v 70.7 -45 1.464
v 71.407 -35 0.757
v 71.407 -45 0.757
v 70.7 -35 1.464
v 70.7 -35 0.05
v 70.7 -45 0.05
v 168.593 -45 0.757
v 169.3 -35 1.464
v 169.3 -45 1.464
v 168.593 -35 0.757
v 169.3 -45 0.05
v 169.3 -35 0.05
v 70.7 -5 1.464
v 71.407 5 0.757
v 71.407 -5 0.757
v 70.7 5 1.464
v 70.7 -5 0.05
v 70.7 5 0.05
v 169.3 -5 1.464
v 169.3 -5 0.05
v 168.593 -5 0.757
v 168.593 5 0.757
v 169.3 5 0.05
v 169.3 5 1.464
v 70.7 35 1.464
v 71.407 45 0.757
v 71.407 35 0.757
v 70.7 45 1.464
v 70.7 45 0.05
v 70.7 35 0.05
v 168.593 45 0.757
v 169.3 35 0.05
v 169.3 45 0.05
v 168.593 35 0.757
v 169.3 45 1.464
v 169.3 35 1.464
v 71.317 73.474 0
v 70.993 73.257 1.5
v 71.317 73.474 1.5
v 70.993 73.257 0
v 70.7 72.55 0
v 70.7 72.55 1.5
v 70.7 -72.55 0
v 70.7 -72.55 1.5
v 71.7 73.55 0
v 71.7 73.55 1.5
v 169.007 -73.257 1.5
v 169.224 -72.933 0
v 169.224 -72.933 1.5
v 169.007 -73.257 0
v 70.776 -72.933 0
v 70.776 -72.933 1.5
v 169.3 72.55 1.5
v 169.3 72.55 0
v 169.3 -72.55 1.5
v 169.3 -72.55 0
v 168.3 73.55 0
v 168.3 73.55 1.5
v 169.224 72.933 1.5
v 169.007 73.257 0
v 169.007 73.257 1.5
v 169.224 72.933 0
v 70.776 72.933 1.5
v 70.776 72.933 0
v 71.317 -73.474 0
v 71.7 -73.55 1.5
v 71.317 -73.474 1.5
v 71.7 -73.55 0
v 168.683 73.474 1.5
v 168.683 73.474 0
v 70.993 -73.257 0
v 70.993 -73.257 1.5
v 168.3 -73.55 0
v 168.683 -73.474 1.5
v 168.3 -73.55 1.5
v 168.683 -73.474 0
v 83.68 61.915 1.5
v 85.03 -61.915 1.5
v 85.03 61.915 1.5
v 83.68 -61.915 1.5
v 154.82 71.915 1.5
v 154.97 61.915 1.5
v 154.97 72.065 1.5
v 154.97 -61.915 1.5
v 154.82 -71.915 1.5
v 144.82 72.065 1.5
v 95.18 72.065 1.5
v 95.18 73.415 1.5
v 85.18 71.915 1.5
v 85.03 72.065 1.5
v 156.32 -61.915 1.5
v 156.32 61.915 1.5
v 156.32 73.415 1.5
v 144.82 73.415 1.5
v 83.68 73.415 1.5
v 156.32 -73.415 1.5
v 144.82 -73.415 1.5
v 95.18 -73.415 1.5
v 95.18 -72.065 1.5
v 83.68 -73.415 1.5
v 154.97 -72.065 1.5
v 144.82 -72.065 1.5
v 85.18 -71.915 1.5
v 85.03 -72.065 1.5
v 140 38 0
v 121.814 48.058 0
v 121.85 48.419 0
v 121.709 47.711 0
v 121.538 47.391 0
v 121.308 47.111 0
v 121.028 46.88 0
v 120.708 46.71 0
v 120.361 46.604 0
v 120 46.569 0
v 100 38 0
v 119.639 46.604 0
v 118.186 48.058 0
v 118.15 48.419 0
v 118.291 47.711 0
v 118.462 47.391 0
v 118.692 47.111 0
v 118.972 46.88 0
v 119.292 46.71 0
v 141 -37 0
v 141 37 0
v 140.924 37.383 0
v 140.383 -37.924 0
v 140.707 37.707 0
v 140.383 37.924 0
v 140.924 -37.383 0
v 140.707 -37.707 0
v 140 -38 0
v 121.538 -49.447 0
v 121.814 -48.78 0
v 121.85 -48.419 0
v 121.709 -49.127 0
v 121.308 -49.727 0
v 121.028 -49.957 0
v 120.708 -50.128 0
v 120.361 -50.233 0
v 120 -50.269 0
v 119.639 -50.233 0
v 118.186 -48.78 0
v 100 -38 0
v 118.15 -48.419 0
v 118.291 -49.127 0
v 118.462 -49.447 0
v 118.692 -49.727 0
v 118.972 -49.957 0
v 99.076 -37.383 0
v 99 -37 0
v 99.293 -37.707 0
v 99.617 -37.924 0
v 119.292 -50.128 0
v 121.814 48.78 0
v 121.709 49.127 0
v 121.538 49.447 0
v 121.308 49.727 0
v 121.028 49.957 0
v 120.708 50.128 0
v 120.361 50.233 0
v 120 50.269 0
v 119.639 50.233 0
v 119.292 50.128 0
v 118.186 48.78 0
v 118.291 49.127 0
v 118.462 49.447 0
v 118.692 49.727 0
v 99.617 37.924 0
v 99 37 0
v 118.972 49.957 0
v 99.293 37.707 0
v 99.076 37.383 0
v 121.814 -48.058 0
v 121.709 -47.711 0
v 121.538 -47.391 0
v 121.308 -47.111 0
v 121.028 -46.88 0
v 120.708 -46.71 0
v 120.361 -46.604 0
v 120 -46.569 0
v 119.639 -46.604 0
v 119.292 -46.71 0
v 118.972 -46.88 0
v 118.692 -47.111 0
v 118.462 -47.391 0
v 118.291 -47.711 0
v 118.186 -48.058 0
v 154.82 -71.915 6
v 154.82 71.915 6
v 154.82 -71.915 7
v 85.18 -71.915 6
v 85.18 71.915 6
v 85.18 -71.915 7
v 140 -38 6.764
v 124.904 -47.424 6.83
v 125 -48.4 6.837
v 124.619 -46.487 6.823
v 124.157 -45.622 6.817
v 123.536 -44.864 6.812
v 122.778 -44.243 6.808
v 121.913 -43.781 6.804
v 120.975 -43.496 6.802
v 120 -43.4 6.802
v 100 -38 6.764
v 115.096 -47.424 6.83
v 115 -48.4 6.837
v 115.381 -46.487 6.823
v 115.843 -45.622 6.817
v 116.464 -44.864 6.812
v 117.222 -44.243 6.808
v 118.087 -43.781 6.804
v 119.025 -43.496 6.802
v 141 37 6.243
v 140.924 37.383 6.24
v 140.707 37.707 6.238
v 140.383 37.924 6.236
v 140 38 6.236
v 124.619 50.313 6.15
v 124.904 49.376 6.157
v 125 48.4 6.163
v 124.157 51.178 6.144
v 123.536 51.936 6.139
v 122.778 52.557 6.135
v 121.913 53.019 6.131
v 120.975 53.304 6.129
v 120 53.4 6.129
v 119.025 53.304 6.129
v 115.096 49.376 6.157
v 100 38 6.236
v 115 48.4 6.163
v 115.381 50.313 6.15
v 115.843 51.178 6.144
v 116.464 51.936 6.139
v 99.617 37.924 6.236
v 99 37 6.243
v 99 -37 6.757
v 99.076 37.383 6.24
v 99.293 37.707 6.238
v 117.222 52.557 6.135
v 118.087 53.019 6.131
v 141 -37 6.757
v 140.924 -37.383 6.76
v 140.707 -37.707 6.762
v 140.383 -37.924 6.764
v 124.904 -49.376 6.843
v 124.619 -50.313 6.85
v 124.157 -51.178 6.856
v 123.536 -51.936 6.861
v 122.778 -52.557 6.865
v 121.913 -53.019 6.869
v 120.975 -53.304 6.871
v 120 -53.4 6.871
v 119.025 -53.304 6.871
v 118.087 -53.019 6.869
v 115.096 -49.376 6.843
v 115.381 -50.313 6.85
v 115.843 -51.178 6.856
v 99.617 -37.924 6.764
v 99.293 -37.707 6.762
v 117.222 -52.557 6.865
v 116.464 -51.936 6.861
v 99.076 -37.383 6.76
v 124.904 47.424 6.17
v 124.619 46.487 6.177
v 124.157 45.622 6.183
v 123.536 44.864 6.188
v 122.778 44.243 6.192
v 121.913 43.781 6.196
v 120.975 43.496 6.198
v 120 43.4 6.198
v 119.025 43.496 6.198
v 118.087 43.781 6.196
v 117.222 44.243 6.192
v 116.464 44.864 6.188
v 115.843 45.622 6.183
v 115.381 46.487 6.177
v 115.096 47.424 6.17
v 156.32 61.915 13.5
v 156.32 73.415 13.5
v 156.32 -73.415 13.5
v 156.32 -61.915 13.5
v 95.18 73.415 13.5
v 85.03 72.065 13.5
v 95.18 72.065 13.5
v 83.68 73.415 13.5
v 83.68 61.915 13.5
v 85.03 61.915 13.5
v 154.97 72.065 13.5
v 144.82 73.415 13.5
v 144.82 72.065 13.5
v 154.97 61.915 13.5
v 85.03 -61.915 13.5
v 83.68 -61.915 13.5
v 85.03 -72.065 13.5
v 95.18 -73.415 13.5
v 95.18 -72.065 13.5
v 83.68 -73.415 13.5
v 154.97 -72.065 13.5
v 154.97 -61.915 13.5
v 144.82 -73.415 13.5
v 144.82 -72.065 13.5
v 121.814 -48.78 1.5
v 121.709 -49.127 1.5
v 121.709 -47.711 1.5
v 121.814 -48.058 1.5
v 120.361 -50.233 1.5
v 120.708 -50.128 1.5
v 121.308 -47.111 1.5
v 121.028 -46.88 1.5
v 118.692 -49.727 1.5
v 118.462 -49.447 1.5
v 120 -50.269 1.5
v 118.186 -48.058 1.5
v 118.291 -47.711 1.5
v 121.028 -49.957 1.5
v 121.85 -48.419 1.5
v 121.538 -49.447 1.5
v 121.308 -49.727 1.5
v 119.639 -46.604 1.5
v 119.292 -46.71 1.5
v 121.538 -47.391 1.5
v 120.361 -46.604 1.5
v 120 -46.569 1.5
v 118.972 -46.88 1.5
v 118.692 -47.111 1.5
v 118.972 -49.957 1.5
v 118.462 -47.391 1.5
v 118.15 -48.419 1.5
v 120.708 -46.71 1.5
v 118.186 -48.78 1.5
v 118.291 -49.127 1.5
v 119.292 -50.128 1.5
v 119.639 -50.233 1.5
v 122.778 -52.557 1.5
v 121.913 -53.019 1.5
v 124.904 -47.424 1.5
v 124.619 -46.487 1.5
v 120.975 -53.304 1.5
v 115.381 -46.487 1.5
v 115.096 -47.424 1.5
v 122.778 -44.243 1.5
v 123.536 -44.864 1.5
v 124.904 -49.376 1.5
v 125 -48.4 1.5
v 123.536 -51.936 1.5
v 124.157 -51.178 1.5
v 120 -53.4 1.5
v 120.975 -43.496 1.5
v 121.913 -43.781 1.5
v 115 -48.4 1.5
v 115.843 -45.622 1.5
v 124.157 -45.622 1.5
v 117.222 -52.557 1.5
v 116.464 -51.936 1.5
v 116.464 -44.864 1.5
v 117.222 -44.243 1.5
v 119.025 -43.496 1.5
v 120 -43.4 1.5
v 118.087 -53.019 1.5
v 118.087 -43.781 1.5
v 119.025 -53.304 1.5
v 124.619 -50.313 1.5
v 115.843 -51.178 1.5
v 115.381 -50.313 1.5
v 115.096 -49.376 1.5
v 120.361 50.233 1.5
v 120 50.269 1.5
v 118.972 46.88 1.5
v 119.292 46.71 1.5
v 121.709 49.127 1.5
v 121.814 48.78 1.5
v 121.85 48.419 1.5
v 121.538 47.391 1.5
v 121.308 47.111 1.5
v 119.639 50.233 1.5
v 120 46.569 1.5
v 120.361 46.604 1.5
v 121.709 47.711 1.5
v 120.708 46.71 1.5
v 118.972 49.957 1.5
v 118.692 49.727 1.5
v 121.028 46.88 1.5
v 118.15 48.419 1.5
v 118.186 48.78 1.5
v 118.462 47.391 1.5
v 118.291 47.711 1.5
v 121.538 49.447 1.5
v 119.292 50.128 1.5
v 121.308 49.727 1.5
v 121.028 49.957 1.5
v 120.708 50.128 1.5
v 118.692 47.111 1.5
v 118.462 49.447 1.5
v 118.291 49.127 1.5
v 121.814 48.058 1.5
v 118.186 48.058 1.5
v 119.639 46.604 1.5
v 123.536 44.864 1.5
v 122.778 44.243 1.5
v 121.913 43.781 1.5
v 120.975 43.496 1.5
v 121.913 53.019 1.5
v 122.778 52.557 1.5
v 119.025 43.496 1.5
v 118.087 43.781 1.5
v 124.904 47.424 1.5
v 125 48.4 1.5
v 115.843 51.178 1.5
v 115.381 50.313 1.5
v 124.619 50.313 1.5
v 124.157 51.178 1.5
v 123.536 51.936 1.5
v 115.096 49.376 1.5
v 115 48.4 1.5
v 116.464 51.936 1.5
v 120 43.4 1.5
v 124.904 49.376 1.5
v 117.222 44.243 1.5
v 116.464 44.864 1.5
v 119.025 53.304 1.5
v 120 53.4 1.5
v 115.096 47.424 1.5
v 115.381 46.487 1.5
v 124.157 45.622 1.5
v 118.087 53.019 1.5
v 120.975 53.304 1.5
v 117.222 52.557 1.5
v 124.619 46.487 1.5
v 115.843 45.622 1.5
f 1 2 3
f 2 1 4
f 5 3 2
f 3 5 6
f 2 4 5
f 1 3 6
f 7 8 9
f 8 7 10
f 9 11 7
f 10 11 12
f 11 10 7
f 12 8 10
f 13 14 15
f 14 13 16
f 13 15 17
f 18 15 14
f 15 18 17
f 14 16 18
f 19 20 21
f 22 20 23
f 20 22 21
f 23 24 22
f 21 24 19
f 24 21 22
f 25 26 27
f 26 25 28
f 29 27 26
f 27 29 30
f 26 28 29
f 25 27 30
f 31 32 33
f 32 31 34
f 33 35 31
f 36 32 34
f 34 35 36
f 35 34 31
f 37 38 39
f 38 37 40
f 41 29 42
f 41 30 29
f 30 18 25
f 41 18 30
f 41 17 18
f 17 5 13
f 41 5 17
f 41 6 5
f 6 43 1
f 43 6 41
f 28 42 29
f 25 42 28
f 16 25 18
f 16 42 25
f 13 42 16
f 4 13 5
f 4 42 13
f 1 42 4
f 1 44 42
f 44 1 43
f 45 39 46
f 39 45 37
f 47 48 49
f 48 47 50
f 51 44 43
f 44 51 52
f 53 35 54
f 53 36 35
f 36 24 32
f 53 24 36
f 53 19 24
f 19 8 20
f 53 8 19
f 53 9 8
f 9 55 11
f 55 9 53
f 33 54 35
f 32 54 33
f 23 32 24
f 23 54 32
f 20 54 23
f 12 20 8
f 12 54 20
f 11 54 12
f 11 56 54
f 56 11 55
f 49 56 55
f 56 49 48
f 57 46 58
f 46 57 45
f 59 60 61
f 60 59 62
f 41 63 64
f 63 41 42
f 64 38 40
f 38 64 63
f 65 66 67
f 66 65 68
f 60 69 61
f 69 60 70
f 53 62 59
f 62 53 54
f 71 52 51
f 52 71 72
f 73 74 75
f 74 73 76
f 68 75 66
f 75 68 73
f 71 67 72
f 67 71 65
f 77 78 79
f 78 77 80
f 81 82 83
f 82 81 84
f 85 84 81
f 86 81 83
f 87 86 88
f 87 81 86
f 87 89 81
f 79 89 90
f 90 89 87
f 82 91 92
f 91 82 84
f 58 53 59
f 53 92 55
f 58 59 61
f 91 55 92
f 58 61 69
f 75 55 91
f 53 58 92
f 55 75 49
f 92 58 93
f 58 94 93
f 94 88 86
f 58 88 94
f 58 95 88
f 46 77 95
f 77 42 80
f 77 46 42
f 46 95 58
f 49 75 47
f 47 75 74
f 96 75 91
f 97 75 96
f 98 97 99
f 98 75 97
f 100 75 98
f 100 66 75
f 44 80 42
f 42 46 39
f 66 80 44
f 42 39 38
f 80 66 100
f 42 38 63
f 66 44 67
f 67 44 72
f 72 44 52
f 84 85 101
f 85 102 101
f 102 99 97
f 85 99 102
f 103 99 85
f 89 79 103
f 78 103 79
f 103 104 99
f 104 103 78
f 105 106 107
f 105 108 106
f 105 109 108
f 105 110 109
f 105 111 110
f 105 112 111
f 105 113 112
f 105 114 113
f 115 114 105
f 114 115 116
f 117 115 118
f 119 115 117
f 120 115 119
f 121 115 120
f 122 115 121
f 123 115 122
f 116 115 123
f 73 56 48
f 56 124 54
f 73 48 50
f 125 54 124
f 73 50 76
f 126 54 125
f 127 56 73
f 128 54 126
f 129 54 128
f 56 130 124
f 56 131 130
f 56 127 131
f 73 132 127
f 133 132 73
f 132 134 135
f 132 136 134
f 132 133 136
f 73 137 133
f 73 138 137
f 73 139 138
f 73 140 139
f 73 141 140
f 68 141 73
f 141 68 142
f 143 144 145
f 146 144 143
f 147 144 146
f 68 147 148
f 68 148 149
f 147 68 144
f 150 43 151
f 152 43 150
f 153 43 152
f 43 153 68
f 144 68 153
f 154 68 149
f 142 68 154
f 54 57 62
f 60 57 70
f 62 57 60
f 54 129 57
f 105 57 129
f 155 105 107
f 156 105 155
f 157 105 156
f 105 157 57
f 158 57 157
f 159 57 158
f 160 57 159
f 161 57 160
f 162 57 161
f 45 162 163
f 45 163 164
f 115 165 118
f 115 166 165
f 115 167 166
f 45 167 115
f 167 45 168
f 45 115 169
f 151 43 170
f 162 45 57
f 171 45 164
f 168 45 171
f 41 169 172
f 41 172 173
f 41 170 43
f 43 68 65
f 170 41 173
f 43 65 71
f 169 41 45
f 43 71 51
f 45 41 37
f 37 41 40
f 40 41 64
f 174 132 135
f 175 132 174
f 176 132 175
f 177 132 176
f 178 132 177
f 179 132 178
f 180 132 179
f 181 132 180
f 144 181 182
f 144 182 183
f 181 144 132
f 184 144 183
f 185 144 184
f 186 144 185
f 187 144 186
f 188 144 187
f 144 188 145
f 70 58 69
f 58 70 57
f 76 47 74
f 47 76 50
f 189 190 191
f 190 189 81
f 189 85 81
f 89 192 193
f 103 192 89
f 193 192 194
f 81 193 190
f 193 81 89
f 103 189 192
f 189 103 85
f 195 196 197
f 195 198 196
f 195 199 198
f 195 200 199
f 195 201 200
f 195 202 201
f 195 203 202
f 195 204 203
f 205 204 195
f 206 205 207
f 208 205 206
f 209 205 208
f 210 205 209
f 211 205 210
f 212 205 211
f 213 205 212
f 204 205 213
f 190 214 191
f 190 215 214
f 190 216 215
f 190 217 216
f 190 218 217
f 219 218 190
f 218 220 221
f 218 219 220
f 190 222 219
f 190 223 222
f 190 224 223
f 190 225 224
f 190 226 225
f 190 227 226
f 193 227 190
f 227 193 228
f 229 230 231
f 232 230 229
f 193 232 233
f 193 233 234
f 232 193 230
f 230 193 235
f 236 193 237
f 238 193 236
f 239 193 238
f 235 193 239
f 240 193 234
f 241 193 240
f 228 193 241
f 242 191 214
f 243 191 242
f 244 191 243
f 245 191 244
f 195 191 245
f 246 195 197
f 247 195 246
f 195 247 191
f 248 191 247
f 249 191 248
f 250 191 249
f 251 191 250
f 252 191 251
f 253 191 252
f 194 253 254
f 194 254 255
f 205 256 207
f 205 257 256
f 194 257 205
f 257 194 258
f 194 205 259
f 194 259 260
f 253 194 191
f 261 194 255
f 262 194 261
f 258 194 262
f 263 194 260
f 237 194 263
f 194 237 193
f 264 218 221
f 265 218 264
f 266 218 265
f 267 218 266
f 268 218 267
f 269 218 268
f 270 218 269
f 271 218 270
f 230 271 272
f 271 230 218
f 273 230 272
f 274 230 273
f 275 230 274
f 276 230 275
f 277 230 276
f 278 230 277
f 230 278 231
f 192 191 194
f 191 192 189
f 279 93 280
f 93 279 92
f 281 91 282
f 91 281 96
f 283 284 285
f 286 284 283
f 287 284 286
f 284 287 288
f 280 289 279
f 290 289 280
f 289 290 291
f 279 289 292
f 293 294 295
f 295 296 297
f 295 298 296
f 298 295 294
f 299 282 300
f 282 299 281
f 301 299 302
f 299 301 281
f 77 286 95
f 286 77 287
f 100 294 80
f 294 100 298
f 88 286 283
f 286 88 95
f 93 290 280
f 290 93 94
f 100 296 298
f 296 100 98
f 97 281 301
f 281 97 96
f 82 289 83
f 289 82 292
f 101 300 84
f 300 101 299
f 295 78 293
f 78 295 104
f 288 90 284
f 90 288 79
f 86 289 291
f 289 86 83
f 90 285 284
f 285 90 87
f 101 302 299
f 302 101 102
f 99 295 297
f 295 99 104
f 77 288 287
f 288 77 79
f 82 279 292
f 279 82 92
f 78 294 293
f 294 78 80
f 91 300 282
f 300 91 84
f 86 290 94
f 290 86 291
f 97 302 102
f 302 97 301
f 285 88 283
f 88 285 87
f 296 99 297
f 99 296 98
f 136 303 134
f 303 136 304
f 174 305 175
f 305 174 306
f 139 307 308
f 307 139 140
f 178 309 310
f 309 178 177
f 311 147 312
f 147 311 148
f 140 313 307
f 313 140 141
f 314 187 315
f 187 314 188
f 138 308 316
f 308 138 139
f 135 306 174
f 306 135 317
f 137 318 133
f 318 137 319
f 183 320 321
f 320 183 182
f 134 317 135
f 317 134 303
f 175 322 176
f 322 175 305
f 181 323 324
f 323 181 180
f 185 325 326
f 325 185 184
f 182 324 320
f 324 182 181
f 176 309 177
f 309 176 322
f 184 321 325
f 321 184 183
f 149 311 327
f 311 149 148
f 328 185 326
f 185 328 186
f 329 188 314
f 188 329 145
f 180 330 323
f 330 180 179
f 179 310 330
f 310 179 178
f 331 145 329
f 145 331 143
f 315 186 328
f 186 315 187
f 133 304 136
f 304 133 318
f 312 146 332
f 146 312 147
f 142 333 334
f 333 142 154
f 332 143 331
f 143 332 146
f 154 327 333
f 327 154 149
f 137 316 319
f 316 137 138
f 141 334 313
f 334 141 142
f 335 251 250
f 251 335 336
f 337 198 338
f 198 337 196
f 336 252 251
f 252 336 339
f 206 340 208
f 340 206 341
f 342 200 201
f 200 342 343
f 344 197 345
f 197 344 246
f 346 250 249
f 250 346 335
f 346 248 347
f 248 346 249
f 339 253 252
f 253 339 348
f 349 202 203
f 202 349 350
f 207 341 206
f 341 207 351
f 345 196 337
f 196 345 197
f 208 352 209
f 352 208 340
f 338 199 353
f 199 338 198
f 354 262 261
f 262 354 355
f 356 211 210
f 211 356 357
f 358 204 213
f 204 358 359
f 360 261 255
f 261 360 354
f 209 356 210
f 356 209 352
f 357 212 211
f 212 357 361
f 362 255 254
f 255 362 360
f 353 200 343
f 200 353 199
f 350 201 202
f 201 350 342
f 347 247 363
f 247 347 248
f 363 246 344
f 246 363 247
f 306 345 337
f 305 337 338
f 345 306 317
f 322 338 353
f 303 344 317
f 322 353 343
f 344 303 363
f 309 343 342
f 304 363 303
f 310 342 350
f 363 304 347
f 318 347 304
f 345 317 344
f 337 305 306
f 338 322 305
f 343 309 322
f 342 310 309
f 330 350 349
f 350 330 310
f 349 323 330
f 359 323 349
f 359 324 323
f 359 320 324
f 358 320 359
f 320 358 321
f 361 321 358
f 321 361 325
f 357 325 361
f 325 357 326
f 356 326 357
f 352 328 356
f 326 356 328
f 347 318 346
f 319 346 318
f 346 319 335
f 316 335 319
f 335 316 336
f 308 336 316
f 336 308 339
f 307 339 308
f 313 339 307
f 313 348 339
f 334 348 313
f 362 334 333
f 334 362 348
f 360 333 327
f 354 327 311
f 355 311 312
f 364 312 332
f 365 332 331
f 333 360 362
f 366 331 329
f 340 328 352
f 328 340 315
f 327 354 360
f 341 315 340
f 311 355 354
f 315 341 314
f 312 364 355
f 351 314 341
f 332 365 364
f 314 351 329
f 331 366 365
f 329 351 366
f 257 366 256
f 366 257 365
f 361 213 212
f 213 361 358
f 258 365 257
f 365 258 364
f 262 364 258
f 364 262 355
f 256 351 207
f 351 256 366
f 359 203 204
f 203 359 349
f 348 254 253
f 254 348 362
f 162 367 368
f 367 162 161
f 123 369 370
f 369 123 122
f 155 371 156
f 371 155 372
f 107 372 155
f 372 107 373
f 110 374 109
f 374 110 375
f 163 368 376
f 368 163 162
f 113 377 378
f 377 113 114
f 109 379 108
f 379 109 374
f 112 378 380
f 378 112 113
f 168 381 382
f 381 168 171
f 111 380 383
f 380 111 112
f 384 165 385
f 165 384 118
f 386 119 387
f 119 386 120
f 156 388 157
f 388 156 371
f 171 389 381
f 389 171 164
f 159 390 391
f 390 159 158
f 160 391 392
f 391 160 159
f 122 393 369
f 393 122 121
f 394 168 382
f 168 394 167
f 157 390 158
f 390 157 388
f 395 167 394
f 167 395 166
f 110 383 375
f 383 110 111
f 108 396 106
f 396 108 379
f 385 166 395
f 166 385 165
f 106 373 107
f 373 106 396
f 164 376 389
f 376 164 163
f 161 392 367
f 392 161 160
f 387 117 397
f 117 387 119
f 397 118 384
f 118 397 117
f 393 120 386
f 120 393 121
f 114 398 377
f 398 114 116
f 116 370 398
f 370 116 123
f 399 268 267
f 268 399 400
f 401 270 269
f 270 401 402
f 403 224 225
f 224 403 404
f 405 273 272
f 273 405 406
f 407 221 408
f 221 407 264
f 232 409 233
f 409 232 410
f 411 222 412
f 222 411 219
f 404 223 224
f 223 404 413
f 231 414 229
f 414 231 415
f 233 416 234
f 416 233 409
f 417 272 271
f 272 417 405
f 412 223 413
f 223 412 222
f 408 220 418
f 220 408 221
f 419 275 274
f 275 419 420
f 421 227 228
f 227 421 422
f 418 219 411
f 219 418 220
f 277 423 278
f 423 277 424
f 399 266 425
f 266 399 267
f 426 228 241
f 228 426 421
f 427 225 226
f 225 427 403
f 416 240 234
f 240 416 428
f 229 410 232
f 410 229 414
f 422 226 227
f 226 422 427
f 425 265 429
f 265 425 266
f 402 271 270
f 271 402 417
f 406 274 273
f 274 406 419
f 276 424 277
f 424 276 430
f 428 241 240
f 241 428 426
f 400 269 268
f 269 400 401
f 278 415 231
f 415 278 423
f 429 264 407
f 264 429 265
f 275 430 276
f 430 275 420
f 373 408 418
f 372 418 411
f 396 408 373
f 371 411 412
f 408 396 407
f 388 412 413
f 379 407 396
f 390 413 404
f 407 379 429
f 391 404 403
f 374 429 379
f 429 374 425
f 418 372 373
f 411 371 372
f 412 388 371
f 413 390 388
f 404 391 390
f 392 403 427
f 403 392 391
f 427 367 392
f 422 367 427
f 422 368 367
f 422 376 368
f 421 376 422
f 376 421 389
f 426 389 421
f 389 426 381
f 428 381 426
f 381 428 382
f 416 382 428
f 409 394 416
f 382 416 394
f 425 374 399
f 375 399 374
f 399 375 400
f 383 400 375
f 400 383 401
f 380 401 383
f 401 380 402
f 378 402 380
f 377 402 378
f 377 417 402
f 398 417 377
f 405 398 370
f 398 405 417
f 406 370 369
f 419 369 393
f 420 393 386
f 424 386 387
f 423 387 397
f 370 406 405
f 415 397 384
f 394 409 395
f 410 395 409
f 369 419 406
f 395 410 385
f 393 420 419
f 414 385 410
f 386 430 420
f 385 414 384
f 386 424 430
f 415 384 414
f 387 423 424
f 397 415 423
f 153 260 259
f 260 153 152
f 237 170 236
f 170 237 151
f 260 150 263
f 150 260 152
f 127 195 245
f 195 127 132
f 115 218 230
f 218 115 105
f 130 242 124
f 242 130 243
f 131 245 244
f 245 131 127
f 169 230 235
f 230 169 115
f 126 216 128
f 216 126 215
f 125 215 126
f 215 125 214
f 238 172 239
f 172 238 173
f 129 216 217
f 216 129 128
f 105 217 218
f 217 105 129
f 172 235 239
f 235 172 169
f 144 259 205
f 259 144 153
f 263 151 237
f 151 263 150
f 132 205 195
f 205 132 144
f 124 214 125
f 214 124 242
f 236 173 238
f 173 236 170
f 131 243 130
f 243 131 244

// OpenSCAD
screen_w = 62;
screen_h = 110.5;
phone_w = 69.64;
phone_h = 143.83;
phone_t = 7.5;

W = screen_w + 40;
H = screen_h + 40;
T = phone_t + 1.5 + 1.5 + 1;



/*
    translate([0,0,1.5+1+1.5])
cube_center([phone_w, phone_h,phone_t]);*/

translate([120,0,0]) {
    
difference() {
    union() {
    cube_center([W-3.4,H-3.4,1.5],r=1);
        
    
// stupid wedge design of pixel 1
translate([0,0,1.5])
    cube_center([phone_w,phone_h,4.5]);
    
translate([phone_w/2,0,1.5+4.5])
rotate([0,-90,0])
linear_extrude(height=phone_w)
polygon(points =[[1,-phone_h/2], [0,-phone_h/2], [0,phone_h/2]], paths=[[0,1,2]]);
    }
    
    translate([0,0,-1])
    cube_center([32+10,66+10, 15],r=1);
    
    for(s=[-1,1]) {
    translate([0,s*96.8375/2,0])
    cylinder(d=3.7,h=15,center=true,$fn=32);
        
        translate([0,s*96.8/2,1.5])
    cylinder(d=10,h=15,$fn=32);
    }

    for(s=[-1,0,1]) for(t=[-1,1])
        translate([t*(W/2-1.7),s*40,sqrt(2)/2+.05])
    rotate([90,0,0])
    cylinder(d=1.4142,h=10,$fn=4, center=true);
}
translate([0,0,1.5]) {
    difference() {
        cube_center([phone_w+3,phone_h+3,phone_t+4.5]);
        cube_center([phone_w+0.3,phone_h+0.3,phone_t+10]);
        cube_center([200,phone_h-20,phone_t+10]);
        cube_center([phone_w-20,200,phone_t+10]);
    }
}
}

/*
for(s=[-1,1])
translate([s*43,70,0])
rotate([0,0,90])
    hanger();
*/

module cube_center(dims,r=0,$fn=16) {
    if(r==0) {
        translate([-dims[0]/2, -dims[1]/2, 0])
        cube(dims);
    } else {
        minkowski() {
            translate([-(dims[0]-2*r)/2, -(dims[1]-2*r)/2, 0])
            cube([dims[0]-2*r,dims[1]-2*r,dims[2]]);
            cylinder(r=r,$fn=$fn,h=0.0001);
        }
    }
}

module hanger() {
    rotate([0,0,-90]) {
    linear_extrude(8)
    minkowski() {
        polygon([[0,2],[-5,-8],[0,1],[5,-8]]);
        circle(r=1);
    }
    translate([0,0,8])
    linear_extrude(1)
    minkowski() {
        polygon([[0,2],[-5,-8],[0,-5],[5,-8]]);
        circle(r=1);
    }
}
}
